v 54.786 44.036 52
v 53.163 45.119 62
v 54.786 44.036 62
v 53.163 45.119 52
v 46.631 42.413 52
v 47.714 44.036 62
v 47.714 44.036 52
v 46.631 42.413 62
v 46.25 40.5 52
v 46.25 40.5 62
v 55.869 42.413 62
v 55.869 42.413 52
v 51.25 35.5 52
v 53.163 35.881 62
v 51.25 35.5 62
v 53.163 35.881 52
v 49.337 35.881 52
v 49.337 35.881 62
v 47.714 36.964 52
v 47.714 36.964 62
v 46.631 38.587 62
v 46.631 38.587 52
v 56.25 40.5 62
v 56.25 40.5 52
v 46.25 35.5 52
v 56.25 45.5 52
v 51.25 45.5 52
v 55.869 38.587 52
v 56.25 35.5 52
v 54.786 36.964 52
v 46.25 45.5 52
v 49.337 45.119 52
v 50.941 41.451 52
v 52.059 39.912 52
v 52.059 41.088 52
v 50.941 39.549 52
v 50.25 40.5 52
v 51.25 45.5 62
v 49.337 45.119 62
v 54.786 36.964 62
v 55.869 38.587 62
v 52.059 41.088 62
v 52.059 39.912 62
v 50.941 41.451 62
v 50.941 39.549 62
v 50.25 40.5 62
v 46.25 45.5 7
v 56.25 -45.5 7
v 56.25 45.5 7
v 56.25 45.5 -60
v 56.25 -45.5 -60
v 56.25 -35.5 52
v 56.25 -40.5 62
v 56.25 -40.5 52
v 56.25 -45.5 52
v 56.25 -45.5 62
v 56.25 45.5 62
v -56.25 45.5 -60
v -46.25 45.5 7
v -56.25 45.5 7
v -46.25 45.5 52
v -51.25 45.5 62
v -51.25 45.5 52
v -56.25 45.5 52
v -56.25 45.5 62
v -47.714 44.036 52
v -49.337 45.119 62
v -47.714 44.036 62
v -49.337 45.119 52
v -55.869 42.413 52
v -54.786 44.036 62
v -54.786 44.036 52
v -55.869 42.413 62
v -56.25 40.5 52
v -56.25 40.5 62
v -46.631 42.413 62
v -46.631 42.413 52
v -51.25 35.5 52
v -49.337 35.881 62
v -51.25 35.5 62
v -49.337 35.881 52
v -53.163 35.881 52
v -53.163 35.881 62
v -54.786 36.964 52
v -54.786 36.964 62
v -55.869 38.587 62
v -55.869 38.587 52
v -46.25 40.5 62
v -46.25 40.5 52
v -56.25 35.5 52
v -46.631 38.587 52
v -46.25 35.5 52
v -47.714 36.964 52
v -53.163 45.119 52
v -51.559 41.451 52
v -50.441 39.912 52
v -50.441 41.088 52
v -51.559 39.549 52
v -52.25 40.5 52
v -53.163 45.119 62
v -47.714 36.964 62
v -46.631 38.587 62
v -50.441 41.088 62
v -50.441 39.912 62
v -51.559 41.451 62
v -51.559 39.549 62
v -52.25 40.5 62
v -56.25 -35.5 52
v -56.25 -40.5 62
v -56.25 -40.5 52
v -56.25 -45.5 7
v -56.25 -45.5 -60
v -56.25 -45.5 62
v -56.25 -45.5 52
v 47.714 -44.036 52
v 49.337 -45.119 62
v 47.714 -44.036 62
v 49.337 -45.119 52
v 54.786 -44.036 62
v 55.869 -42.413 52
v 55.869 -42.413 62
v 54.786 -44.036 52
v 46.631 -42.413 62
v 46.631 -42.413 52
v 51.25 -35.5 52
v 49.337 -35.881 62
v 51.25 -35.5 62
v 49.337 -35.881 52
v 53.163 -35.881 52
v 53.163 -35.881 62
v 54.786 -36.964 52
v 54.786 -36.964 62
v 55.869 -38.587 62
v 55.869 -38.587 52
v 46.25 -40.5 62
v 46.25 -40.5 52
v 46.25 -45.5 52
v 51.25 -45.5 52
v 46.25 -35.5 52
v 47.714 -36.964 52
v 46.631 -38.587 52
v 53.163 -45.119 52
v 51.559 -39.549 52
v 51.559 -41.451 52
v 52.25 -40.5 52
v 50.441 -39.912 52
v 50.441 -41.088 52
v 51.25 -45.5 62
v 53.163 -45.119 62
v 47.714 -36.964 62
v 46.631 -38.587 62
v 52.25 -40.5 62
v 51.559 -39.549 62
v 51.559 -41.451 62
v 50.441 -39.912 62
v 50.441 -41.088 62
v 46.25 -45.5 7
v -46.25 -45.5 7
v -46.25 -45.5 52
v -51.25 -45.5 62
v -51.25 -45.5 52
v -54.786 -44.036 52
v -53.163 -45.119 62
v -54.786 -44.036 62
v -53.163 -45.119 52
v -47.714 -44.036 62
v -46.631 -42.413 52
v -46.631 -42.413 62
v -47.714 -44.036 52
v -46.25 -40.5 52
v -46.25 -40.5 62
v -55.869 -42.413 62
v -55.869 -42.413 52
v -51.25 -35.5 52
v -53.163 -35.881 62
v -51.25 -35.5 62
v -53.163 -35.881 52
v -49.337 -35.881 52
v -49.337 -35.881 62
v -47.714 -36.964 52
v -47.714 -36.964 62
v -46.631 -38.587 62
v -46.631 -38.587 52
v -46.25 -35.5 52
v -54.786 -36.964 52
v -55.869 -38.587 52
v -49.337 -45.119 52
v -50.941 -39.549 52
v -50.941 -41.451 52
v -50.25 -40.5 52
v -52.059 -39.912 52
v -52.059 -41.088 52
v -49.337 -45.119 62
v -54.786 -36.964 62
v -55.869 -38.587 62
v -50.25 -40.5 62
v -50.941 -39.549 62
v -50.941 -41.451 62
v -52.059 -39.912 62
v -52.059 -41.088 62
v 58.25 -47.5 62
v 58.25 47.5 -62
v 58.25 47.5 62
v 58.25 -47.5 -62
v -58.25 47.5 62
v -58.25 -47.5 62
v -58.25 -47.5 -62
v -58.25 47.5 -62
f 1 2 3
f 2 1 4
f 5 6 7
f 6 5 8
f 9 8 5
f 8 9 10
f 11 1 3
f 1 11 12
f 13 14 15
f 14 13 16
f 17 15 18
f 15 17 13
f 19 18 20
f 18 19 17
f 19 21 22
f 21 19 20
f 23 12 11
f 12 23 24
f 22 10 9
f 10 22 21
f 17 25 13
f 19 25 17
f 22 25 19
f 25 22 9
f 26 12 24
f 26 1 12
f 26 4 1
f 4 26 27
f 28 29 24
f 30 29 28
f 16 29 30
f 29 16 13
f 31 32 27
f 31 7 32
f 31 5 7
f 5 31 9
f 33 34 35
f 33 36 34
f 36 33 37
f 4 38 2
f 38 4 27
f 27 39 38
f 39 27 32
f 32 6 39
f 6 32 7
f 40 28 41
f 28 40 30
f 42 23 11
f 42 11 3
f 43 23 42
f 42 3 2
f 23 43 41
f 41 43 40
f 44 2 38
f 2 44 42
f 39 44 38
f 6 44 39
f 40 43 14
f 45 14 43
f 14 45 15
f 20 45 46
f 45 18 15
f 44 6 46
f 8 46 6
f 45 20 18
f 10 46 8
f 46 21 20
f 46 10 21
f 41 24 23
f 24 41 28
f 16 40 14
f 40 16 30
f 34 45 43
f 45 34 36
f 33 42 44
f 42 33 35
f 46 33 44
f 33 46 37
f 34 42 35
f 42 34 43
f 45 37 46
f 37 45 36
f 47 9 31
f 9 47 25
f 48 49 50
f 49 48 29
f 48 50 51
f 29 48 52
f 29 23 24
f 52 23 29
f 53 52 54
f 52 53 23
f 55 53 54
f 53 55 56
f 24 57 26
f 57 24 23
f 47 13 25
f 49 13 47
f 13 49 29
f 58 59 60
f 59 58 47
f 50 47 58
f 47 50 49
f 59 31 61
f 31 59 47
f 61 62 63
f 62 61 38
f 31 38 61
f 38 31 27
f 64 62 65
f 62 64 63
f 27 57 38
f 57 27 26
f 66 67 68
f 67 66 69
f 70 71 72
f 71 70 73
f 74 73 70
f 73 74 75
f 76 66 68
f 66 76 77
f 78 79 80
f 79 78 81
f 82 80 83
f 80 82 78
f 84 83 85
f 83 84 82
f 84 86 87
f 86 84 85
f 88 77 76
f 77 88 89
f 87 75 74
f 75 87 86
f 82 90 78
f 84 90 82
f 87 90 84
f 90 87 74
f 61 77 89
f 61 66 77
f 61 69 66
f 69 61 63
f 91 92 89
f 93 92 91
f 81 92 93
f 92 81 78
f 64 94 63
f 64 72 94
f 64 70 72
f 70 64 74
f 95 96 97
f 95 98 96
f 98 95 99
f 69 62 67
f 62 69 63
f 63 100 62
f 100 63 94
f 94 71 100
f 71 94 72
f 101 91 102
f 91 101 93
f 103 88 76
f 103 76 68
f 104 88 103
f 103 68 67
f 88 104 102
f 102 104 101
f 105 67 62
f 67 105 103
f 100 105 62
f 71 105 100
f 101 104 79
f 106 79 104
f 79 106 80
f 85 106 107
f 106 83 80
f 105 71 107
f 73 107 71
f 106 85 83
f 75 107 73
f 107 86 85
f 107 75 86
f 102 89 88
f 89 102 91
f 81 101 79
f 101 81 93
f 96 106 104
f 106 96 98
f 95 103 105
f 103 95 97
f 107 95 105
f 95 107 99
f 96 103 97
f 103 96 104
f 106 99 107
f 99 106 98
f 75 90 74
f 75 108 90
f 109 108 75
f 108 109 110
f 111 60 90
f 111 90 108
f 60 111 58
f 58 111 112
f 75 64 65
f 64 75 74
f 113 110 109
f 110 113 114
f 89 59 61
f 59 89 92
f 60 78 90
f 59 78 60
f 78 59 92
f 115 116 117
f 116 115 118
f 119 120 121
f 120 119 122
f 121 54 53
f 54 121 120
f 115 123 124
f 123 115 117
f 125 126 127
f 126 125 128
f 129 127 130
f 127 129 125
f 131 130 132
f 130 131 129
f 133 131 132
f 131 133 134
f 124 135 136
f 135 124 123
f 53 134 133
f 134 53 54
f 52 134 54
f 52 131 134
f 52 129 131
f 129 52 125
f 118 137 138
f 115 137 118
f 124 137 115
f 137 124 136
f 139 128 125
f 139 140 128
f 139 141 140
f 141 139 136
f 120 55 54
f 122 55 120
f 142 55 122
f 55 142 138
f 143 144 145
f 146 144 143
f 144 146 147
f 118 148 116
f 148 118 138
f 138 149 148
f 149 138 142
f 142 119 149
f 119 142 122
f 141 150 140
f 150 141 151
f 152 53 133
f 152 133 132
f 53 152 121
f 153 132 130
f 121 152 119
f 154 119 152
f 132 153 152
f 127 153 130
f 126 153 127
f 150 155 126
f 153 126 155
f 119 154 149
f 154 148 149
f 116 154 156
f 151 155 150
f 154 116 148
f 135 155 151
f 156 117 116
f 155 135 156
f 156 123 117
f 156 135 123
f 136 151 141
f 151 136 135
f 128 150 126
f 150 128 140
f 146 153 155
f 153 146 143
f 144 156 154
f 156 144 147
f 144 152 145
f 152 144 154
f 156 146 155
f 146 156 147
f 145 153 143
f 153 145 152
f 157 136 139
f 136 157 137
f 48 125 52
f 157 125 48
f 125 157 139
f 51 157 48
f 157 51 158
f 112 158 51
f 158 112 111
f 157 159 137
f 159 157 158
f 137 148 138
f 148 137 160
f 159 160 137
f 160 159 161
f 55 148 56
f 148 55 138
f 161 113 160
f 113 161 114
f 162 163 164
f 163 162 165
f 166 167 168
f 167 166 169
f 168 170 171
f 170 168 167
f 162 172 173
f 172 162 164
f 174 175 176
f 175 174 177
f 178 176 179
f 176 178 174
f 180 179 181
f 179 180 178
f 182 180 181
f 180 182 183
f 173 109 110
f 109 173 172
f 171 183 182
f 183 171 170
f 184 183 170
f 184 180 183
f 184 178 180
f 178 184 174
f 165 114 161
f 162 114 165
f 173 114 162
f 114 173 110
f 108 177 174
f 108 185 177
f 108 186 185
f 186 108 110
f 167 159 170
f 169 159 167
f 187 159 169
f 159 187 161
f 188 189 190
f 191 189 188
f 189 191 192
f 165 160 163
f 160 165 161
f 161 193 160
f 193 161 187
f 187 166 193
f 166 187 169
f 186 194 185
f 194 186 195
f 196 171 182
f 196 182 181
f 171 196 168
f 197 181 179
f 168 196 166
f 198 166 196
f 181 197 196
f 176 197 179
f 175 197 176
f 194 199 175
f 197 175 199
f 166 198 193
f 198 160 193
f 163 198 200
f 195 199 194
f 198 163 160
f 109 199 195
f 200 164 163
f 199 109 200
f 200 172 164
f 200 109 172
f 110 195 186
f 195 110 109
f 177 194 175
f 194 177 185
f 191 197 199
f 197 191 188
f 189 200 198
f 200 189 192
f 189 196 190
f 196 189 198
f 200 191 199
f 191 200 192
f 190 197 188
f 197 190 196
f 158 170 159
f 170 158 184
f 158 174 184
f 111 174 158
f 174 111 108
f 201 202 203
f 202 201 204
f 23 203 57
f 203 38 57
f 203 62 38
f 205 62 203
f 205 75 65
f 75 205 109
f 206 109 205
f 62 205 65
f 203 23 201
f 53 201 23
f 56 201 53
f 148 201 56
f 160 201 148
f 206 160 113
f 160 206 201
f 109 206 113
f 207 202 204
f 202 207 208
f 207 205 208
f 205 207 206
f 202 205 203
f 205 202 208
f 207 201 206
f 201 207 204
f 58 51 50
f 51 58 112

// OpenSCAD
diameter_inside=112.5;
diameter_inside_short=91;
thickness=2;
height=124;
bottomSide=2;
//support triangle
striangle_l=10;
striangle_w=10;
striangle_h=45;
screwl=10;
screww=2;
triangle_position_h=(height-(striangle_h+screwl)-height/2);
triangle_difference=-striangle_w/2;
triangle_position_l=diameter_inside/2+triangle_difference;
triangle_position_w=diameter_inside_short/2+triangle_difference;

//translate([0,0,height/2]) hose();
translate([triangle_position_l,triangle_position_w,triangle_position_h]) support_triangle(striangle_l,striangle_w,striangle_h);
translate([-triangle_position_l,triangle_position_w,triangle_position_h]) support_triangle(striangle_l,striangle_w,striangle_h);
translate([triangle_position_l,-triangle_position_w,triangle_position_h]) rotate([0,0,180]) support_triangle(striangle_l,striangle_w,striangle_h);
translate([-triangle_position_l,-triangle_position_w,triangle_position_h]) rotate([0,0,180]) support_triangle(striangle_l,striangle_w,striangle_h);

box();



module box() {
difference(){
//outside 
cube([diameter_inside+thickness*2,diameter_inside_short+thickness*2, height], center=true);
//vnitrni trubka odectena
translate([0,0,bottomSide]) cube([diameter_inside,diameter_inside_short, height], center=true);
}
}

module hose() {
difference(){
//outside cylinder
cylinder(h=height,r=(diameter_inside+thickness*2)/2,center=true,$fn=100);
//vnitrni trubka odectena
translate([0,0,bottomSide]) cylinder(h=height,r=diameter_inside/2,center=true,$fn=100);
}
}



module support_triangle(l,w,h){
translate([0,0,h]){
rotate([0,180,0]){
union(){
translate([-l/2,-w/2,0]){
    polyhedron(
               points=[[0,0,0], [l,0,0], [l,w,0], [0,w,0], [0,w,h], [l,w,h]],
               faces=[[0,1,2,3],[5,4,3,2],[0,4,5,1],[0,3,4],[5,2,1]]
               );} 
mirror([0,0,1]) difference() {cylinder(h=screwl,d=w); cylinder(h=screwl,d=screww);}
}
               }}}
